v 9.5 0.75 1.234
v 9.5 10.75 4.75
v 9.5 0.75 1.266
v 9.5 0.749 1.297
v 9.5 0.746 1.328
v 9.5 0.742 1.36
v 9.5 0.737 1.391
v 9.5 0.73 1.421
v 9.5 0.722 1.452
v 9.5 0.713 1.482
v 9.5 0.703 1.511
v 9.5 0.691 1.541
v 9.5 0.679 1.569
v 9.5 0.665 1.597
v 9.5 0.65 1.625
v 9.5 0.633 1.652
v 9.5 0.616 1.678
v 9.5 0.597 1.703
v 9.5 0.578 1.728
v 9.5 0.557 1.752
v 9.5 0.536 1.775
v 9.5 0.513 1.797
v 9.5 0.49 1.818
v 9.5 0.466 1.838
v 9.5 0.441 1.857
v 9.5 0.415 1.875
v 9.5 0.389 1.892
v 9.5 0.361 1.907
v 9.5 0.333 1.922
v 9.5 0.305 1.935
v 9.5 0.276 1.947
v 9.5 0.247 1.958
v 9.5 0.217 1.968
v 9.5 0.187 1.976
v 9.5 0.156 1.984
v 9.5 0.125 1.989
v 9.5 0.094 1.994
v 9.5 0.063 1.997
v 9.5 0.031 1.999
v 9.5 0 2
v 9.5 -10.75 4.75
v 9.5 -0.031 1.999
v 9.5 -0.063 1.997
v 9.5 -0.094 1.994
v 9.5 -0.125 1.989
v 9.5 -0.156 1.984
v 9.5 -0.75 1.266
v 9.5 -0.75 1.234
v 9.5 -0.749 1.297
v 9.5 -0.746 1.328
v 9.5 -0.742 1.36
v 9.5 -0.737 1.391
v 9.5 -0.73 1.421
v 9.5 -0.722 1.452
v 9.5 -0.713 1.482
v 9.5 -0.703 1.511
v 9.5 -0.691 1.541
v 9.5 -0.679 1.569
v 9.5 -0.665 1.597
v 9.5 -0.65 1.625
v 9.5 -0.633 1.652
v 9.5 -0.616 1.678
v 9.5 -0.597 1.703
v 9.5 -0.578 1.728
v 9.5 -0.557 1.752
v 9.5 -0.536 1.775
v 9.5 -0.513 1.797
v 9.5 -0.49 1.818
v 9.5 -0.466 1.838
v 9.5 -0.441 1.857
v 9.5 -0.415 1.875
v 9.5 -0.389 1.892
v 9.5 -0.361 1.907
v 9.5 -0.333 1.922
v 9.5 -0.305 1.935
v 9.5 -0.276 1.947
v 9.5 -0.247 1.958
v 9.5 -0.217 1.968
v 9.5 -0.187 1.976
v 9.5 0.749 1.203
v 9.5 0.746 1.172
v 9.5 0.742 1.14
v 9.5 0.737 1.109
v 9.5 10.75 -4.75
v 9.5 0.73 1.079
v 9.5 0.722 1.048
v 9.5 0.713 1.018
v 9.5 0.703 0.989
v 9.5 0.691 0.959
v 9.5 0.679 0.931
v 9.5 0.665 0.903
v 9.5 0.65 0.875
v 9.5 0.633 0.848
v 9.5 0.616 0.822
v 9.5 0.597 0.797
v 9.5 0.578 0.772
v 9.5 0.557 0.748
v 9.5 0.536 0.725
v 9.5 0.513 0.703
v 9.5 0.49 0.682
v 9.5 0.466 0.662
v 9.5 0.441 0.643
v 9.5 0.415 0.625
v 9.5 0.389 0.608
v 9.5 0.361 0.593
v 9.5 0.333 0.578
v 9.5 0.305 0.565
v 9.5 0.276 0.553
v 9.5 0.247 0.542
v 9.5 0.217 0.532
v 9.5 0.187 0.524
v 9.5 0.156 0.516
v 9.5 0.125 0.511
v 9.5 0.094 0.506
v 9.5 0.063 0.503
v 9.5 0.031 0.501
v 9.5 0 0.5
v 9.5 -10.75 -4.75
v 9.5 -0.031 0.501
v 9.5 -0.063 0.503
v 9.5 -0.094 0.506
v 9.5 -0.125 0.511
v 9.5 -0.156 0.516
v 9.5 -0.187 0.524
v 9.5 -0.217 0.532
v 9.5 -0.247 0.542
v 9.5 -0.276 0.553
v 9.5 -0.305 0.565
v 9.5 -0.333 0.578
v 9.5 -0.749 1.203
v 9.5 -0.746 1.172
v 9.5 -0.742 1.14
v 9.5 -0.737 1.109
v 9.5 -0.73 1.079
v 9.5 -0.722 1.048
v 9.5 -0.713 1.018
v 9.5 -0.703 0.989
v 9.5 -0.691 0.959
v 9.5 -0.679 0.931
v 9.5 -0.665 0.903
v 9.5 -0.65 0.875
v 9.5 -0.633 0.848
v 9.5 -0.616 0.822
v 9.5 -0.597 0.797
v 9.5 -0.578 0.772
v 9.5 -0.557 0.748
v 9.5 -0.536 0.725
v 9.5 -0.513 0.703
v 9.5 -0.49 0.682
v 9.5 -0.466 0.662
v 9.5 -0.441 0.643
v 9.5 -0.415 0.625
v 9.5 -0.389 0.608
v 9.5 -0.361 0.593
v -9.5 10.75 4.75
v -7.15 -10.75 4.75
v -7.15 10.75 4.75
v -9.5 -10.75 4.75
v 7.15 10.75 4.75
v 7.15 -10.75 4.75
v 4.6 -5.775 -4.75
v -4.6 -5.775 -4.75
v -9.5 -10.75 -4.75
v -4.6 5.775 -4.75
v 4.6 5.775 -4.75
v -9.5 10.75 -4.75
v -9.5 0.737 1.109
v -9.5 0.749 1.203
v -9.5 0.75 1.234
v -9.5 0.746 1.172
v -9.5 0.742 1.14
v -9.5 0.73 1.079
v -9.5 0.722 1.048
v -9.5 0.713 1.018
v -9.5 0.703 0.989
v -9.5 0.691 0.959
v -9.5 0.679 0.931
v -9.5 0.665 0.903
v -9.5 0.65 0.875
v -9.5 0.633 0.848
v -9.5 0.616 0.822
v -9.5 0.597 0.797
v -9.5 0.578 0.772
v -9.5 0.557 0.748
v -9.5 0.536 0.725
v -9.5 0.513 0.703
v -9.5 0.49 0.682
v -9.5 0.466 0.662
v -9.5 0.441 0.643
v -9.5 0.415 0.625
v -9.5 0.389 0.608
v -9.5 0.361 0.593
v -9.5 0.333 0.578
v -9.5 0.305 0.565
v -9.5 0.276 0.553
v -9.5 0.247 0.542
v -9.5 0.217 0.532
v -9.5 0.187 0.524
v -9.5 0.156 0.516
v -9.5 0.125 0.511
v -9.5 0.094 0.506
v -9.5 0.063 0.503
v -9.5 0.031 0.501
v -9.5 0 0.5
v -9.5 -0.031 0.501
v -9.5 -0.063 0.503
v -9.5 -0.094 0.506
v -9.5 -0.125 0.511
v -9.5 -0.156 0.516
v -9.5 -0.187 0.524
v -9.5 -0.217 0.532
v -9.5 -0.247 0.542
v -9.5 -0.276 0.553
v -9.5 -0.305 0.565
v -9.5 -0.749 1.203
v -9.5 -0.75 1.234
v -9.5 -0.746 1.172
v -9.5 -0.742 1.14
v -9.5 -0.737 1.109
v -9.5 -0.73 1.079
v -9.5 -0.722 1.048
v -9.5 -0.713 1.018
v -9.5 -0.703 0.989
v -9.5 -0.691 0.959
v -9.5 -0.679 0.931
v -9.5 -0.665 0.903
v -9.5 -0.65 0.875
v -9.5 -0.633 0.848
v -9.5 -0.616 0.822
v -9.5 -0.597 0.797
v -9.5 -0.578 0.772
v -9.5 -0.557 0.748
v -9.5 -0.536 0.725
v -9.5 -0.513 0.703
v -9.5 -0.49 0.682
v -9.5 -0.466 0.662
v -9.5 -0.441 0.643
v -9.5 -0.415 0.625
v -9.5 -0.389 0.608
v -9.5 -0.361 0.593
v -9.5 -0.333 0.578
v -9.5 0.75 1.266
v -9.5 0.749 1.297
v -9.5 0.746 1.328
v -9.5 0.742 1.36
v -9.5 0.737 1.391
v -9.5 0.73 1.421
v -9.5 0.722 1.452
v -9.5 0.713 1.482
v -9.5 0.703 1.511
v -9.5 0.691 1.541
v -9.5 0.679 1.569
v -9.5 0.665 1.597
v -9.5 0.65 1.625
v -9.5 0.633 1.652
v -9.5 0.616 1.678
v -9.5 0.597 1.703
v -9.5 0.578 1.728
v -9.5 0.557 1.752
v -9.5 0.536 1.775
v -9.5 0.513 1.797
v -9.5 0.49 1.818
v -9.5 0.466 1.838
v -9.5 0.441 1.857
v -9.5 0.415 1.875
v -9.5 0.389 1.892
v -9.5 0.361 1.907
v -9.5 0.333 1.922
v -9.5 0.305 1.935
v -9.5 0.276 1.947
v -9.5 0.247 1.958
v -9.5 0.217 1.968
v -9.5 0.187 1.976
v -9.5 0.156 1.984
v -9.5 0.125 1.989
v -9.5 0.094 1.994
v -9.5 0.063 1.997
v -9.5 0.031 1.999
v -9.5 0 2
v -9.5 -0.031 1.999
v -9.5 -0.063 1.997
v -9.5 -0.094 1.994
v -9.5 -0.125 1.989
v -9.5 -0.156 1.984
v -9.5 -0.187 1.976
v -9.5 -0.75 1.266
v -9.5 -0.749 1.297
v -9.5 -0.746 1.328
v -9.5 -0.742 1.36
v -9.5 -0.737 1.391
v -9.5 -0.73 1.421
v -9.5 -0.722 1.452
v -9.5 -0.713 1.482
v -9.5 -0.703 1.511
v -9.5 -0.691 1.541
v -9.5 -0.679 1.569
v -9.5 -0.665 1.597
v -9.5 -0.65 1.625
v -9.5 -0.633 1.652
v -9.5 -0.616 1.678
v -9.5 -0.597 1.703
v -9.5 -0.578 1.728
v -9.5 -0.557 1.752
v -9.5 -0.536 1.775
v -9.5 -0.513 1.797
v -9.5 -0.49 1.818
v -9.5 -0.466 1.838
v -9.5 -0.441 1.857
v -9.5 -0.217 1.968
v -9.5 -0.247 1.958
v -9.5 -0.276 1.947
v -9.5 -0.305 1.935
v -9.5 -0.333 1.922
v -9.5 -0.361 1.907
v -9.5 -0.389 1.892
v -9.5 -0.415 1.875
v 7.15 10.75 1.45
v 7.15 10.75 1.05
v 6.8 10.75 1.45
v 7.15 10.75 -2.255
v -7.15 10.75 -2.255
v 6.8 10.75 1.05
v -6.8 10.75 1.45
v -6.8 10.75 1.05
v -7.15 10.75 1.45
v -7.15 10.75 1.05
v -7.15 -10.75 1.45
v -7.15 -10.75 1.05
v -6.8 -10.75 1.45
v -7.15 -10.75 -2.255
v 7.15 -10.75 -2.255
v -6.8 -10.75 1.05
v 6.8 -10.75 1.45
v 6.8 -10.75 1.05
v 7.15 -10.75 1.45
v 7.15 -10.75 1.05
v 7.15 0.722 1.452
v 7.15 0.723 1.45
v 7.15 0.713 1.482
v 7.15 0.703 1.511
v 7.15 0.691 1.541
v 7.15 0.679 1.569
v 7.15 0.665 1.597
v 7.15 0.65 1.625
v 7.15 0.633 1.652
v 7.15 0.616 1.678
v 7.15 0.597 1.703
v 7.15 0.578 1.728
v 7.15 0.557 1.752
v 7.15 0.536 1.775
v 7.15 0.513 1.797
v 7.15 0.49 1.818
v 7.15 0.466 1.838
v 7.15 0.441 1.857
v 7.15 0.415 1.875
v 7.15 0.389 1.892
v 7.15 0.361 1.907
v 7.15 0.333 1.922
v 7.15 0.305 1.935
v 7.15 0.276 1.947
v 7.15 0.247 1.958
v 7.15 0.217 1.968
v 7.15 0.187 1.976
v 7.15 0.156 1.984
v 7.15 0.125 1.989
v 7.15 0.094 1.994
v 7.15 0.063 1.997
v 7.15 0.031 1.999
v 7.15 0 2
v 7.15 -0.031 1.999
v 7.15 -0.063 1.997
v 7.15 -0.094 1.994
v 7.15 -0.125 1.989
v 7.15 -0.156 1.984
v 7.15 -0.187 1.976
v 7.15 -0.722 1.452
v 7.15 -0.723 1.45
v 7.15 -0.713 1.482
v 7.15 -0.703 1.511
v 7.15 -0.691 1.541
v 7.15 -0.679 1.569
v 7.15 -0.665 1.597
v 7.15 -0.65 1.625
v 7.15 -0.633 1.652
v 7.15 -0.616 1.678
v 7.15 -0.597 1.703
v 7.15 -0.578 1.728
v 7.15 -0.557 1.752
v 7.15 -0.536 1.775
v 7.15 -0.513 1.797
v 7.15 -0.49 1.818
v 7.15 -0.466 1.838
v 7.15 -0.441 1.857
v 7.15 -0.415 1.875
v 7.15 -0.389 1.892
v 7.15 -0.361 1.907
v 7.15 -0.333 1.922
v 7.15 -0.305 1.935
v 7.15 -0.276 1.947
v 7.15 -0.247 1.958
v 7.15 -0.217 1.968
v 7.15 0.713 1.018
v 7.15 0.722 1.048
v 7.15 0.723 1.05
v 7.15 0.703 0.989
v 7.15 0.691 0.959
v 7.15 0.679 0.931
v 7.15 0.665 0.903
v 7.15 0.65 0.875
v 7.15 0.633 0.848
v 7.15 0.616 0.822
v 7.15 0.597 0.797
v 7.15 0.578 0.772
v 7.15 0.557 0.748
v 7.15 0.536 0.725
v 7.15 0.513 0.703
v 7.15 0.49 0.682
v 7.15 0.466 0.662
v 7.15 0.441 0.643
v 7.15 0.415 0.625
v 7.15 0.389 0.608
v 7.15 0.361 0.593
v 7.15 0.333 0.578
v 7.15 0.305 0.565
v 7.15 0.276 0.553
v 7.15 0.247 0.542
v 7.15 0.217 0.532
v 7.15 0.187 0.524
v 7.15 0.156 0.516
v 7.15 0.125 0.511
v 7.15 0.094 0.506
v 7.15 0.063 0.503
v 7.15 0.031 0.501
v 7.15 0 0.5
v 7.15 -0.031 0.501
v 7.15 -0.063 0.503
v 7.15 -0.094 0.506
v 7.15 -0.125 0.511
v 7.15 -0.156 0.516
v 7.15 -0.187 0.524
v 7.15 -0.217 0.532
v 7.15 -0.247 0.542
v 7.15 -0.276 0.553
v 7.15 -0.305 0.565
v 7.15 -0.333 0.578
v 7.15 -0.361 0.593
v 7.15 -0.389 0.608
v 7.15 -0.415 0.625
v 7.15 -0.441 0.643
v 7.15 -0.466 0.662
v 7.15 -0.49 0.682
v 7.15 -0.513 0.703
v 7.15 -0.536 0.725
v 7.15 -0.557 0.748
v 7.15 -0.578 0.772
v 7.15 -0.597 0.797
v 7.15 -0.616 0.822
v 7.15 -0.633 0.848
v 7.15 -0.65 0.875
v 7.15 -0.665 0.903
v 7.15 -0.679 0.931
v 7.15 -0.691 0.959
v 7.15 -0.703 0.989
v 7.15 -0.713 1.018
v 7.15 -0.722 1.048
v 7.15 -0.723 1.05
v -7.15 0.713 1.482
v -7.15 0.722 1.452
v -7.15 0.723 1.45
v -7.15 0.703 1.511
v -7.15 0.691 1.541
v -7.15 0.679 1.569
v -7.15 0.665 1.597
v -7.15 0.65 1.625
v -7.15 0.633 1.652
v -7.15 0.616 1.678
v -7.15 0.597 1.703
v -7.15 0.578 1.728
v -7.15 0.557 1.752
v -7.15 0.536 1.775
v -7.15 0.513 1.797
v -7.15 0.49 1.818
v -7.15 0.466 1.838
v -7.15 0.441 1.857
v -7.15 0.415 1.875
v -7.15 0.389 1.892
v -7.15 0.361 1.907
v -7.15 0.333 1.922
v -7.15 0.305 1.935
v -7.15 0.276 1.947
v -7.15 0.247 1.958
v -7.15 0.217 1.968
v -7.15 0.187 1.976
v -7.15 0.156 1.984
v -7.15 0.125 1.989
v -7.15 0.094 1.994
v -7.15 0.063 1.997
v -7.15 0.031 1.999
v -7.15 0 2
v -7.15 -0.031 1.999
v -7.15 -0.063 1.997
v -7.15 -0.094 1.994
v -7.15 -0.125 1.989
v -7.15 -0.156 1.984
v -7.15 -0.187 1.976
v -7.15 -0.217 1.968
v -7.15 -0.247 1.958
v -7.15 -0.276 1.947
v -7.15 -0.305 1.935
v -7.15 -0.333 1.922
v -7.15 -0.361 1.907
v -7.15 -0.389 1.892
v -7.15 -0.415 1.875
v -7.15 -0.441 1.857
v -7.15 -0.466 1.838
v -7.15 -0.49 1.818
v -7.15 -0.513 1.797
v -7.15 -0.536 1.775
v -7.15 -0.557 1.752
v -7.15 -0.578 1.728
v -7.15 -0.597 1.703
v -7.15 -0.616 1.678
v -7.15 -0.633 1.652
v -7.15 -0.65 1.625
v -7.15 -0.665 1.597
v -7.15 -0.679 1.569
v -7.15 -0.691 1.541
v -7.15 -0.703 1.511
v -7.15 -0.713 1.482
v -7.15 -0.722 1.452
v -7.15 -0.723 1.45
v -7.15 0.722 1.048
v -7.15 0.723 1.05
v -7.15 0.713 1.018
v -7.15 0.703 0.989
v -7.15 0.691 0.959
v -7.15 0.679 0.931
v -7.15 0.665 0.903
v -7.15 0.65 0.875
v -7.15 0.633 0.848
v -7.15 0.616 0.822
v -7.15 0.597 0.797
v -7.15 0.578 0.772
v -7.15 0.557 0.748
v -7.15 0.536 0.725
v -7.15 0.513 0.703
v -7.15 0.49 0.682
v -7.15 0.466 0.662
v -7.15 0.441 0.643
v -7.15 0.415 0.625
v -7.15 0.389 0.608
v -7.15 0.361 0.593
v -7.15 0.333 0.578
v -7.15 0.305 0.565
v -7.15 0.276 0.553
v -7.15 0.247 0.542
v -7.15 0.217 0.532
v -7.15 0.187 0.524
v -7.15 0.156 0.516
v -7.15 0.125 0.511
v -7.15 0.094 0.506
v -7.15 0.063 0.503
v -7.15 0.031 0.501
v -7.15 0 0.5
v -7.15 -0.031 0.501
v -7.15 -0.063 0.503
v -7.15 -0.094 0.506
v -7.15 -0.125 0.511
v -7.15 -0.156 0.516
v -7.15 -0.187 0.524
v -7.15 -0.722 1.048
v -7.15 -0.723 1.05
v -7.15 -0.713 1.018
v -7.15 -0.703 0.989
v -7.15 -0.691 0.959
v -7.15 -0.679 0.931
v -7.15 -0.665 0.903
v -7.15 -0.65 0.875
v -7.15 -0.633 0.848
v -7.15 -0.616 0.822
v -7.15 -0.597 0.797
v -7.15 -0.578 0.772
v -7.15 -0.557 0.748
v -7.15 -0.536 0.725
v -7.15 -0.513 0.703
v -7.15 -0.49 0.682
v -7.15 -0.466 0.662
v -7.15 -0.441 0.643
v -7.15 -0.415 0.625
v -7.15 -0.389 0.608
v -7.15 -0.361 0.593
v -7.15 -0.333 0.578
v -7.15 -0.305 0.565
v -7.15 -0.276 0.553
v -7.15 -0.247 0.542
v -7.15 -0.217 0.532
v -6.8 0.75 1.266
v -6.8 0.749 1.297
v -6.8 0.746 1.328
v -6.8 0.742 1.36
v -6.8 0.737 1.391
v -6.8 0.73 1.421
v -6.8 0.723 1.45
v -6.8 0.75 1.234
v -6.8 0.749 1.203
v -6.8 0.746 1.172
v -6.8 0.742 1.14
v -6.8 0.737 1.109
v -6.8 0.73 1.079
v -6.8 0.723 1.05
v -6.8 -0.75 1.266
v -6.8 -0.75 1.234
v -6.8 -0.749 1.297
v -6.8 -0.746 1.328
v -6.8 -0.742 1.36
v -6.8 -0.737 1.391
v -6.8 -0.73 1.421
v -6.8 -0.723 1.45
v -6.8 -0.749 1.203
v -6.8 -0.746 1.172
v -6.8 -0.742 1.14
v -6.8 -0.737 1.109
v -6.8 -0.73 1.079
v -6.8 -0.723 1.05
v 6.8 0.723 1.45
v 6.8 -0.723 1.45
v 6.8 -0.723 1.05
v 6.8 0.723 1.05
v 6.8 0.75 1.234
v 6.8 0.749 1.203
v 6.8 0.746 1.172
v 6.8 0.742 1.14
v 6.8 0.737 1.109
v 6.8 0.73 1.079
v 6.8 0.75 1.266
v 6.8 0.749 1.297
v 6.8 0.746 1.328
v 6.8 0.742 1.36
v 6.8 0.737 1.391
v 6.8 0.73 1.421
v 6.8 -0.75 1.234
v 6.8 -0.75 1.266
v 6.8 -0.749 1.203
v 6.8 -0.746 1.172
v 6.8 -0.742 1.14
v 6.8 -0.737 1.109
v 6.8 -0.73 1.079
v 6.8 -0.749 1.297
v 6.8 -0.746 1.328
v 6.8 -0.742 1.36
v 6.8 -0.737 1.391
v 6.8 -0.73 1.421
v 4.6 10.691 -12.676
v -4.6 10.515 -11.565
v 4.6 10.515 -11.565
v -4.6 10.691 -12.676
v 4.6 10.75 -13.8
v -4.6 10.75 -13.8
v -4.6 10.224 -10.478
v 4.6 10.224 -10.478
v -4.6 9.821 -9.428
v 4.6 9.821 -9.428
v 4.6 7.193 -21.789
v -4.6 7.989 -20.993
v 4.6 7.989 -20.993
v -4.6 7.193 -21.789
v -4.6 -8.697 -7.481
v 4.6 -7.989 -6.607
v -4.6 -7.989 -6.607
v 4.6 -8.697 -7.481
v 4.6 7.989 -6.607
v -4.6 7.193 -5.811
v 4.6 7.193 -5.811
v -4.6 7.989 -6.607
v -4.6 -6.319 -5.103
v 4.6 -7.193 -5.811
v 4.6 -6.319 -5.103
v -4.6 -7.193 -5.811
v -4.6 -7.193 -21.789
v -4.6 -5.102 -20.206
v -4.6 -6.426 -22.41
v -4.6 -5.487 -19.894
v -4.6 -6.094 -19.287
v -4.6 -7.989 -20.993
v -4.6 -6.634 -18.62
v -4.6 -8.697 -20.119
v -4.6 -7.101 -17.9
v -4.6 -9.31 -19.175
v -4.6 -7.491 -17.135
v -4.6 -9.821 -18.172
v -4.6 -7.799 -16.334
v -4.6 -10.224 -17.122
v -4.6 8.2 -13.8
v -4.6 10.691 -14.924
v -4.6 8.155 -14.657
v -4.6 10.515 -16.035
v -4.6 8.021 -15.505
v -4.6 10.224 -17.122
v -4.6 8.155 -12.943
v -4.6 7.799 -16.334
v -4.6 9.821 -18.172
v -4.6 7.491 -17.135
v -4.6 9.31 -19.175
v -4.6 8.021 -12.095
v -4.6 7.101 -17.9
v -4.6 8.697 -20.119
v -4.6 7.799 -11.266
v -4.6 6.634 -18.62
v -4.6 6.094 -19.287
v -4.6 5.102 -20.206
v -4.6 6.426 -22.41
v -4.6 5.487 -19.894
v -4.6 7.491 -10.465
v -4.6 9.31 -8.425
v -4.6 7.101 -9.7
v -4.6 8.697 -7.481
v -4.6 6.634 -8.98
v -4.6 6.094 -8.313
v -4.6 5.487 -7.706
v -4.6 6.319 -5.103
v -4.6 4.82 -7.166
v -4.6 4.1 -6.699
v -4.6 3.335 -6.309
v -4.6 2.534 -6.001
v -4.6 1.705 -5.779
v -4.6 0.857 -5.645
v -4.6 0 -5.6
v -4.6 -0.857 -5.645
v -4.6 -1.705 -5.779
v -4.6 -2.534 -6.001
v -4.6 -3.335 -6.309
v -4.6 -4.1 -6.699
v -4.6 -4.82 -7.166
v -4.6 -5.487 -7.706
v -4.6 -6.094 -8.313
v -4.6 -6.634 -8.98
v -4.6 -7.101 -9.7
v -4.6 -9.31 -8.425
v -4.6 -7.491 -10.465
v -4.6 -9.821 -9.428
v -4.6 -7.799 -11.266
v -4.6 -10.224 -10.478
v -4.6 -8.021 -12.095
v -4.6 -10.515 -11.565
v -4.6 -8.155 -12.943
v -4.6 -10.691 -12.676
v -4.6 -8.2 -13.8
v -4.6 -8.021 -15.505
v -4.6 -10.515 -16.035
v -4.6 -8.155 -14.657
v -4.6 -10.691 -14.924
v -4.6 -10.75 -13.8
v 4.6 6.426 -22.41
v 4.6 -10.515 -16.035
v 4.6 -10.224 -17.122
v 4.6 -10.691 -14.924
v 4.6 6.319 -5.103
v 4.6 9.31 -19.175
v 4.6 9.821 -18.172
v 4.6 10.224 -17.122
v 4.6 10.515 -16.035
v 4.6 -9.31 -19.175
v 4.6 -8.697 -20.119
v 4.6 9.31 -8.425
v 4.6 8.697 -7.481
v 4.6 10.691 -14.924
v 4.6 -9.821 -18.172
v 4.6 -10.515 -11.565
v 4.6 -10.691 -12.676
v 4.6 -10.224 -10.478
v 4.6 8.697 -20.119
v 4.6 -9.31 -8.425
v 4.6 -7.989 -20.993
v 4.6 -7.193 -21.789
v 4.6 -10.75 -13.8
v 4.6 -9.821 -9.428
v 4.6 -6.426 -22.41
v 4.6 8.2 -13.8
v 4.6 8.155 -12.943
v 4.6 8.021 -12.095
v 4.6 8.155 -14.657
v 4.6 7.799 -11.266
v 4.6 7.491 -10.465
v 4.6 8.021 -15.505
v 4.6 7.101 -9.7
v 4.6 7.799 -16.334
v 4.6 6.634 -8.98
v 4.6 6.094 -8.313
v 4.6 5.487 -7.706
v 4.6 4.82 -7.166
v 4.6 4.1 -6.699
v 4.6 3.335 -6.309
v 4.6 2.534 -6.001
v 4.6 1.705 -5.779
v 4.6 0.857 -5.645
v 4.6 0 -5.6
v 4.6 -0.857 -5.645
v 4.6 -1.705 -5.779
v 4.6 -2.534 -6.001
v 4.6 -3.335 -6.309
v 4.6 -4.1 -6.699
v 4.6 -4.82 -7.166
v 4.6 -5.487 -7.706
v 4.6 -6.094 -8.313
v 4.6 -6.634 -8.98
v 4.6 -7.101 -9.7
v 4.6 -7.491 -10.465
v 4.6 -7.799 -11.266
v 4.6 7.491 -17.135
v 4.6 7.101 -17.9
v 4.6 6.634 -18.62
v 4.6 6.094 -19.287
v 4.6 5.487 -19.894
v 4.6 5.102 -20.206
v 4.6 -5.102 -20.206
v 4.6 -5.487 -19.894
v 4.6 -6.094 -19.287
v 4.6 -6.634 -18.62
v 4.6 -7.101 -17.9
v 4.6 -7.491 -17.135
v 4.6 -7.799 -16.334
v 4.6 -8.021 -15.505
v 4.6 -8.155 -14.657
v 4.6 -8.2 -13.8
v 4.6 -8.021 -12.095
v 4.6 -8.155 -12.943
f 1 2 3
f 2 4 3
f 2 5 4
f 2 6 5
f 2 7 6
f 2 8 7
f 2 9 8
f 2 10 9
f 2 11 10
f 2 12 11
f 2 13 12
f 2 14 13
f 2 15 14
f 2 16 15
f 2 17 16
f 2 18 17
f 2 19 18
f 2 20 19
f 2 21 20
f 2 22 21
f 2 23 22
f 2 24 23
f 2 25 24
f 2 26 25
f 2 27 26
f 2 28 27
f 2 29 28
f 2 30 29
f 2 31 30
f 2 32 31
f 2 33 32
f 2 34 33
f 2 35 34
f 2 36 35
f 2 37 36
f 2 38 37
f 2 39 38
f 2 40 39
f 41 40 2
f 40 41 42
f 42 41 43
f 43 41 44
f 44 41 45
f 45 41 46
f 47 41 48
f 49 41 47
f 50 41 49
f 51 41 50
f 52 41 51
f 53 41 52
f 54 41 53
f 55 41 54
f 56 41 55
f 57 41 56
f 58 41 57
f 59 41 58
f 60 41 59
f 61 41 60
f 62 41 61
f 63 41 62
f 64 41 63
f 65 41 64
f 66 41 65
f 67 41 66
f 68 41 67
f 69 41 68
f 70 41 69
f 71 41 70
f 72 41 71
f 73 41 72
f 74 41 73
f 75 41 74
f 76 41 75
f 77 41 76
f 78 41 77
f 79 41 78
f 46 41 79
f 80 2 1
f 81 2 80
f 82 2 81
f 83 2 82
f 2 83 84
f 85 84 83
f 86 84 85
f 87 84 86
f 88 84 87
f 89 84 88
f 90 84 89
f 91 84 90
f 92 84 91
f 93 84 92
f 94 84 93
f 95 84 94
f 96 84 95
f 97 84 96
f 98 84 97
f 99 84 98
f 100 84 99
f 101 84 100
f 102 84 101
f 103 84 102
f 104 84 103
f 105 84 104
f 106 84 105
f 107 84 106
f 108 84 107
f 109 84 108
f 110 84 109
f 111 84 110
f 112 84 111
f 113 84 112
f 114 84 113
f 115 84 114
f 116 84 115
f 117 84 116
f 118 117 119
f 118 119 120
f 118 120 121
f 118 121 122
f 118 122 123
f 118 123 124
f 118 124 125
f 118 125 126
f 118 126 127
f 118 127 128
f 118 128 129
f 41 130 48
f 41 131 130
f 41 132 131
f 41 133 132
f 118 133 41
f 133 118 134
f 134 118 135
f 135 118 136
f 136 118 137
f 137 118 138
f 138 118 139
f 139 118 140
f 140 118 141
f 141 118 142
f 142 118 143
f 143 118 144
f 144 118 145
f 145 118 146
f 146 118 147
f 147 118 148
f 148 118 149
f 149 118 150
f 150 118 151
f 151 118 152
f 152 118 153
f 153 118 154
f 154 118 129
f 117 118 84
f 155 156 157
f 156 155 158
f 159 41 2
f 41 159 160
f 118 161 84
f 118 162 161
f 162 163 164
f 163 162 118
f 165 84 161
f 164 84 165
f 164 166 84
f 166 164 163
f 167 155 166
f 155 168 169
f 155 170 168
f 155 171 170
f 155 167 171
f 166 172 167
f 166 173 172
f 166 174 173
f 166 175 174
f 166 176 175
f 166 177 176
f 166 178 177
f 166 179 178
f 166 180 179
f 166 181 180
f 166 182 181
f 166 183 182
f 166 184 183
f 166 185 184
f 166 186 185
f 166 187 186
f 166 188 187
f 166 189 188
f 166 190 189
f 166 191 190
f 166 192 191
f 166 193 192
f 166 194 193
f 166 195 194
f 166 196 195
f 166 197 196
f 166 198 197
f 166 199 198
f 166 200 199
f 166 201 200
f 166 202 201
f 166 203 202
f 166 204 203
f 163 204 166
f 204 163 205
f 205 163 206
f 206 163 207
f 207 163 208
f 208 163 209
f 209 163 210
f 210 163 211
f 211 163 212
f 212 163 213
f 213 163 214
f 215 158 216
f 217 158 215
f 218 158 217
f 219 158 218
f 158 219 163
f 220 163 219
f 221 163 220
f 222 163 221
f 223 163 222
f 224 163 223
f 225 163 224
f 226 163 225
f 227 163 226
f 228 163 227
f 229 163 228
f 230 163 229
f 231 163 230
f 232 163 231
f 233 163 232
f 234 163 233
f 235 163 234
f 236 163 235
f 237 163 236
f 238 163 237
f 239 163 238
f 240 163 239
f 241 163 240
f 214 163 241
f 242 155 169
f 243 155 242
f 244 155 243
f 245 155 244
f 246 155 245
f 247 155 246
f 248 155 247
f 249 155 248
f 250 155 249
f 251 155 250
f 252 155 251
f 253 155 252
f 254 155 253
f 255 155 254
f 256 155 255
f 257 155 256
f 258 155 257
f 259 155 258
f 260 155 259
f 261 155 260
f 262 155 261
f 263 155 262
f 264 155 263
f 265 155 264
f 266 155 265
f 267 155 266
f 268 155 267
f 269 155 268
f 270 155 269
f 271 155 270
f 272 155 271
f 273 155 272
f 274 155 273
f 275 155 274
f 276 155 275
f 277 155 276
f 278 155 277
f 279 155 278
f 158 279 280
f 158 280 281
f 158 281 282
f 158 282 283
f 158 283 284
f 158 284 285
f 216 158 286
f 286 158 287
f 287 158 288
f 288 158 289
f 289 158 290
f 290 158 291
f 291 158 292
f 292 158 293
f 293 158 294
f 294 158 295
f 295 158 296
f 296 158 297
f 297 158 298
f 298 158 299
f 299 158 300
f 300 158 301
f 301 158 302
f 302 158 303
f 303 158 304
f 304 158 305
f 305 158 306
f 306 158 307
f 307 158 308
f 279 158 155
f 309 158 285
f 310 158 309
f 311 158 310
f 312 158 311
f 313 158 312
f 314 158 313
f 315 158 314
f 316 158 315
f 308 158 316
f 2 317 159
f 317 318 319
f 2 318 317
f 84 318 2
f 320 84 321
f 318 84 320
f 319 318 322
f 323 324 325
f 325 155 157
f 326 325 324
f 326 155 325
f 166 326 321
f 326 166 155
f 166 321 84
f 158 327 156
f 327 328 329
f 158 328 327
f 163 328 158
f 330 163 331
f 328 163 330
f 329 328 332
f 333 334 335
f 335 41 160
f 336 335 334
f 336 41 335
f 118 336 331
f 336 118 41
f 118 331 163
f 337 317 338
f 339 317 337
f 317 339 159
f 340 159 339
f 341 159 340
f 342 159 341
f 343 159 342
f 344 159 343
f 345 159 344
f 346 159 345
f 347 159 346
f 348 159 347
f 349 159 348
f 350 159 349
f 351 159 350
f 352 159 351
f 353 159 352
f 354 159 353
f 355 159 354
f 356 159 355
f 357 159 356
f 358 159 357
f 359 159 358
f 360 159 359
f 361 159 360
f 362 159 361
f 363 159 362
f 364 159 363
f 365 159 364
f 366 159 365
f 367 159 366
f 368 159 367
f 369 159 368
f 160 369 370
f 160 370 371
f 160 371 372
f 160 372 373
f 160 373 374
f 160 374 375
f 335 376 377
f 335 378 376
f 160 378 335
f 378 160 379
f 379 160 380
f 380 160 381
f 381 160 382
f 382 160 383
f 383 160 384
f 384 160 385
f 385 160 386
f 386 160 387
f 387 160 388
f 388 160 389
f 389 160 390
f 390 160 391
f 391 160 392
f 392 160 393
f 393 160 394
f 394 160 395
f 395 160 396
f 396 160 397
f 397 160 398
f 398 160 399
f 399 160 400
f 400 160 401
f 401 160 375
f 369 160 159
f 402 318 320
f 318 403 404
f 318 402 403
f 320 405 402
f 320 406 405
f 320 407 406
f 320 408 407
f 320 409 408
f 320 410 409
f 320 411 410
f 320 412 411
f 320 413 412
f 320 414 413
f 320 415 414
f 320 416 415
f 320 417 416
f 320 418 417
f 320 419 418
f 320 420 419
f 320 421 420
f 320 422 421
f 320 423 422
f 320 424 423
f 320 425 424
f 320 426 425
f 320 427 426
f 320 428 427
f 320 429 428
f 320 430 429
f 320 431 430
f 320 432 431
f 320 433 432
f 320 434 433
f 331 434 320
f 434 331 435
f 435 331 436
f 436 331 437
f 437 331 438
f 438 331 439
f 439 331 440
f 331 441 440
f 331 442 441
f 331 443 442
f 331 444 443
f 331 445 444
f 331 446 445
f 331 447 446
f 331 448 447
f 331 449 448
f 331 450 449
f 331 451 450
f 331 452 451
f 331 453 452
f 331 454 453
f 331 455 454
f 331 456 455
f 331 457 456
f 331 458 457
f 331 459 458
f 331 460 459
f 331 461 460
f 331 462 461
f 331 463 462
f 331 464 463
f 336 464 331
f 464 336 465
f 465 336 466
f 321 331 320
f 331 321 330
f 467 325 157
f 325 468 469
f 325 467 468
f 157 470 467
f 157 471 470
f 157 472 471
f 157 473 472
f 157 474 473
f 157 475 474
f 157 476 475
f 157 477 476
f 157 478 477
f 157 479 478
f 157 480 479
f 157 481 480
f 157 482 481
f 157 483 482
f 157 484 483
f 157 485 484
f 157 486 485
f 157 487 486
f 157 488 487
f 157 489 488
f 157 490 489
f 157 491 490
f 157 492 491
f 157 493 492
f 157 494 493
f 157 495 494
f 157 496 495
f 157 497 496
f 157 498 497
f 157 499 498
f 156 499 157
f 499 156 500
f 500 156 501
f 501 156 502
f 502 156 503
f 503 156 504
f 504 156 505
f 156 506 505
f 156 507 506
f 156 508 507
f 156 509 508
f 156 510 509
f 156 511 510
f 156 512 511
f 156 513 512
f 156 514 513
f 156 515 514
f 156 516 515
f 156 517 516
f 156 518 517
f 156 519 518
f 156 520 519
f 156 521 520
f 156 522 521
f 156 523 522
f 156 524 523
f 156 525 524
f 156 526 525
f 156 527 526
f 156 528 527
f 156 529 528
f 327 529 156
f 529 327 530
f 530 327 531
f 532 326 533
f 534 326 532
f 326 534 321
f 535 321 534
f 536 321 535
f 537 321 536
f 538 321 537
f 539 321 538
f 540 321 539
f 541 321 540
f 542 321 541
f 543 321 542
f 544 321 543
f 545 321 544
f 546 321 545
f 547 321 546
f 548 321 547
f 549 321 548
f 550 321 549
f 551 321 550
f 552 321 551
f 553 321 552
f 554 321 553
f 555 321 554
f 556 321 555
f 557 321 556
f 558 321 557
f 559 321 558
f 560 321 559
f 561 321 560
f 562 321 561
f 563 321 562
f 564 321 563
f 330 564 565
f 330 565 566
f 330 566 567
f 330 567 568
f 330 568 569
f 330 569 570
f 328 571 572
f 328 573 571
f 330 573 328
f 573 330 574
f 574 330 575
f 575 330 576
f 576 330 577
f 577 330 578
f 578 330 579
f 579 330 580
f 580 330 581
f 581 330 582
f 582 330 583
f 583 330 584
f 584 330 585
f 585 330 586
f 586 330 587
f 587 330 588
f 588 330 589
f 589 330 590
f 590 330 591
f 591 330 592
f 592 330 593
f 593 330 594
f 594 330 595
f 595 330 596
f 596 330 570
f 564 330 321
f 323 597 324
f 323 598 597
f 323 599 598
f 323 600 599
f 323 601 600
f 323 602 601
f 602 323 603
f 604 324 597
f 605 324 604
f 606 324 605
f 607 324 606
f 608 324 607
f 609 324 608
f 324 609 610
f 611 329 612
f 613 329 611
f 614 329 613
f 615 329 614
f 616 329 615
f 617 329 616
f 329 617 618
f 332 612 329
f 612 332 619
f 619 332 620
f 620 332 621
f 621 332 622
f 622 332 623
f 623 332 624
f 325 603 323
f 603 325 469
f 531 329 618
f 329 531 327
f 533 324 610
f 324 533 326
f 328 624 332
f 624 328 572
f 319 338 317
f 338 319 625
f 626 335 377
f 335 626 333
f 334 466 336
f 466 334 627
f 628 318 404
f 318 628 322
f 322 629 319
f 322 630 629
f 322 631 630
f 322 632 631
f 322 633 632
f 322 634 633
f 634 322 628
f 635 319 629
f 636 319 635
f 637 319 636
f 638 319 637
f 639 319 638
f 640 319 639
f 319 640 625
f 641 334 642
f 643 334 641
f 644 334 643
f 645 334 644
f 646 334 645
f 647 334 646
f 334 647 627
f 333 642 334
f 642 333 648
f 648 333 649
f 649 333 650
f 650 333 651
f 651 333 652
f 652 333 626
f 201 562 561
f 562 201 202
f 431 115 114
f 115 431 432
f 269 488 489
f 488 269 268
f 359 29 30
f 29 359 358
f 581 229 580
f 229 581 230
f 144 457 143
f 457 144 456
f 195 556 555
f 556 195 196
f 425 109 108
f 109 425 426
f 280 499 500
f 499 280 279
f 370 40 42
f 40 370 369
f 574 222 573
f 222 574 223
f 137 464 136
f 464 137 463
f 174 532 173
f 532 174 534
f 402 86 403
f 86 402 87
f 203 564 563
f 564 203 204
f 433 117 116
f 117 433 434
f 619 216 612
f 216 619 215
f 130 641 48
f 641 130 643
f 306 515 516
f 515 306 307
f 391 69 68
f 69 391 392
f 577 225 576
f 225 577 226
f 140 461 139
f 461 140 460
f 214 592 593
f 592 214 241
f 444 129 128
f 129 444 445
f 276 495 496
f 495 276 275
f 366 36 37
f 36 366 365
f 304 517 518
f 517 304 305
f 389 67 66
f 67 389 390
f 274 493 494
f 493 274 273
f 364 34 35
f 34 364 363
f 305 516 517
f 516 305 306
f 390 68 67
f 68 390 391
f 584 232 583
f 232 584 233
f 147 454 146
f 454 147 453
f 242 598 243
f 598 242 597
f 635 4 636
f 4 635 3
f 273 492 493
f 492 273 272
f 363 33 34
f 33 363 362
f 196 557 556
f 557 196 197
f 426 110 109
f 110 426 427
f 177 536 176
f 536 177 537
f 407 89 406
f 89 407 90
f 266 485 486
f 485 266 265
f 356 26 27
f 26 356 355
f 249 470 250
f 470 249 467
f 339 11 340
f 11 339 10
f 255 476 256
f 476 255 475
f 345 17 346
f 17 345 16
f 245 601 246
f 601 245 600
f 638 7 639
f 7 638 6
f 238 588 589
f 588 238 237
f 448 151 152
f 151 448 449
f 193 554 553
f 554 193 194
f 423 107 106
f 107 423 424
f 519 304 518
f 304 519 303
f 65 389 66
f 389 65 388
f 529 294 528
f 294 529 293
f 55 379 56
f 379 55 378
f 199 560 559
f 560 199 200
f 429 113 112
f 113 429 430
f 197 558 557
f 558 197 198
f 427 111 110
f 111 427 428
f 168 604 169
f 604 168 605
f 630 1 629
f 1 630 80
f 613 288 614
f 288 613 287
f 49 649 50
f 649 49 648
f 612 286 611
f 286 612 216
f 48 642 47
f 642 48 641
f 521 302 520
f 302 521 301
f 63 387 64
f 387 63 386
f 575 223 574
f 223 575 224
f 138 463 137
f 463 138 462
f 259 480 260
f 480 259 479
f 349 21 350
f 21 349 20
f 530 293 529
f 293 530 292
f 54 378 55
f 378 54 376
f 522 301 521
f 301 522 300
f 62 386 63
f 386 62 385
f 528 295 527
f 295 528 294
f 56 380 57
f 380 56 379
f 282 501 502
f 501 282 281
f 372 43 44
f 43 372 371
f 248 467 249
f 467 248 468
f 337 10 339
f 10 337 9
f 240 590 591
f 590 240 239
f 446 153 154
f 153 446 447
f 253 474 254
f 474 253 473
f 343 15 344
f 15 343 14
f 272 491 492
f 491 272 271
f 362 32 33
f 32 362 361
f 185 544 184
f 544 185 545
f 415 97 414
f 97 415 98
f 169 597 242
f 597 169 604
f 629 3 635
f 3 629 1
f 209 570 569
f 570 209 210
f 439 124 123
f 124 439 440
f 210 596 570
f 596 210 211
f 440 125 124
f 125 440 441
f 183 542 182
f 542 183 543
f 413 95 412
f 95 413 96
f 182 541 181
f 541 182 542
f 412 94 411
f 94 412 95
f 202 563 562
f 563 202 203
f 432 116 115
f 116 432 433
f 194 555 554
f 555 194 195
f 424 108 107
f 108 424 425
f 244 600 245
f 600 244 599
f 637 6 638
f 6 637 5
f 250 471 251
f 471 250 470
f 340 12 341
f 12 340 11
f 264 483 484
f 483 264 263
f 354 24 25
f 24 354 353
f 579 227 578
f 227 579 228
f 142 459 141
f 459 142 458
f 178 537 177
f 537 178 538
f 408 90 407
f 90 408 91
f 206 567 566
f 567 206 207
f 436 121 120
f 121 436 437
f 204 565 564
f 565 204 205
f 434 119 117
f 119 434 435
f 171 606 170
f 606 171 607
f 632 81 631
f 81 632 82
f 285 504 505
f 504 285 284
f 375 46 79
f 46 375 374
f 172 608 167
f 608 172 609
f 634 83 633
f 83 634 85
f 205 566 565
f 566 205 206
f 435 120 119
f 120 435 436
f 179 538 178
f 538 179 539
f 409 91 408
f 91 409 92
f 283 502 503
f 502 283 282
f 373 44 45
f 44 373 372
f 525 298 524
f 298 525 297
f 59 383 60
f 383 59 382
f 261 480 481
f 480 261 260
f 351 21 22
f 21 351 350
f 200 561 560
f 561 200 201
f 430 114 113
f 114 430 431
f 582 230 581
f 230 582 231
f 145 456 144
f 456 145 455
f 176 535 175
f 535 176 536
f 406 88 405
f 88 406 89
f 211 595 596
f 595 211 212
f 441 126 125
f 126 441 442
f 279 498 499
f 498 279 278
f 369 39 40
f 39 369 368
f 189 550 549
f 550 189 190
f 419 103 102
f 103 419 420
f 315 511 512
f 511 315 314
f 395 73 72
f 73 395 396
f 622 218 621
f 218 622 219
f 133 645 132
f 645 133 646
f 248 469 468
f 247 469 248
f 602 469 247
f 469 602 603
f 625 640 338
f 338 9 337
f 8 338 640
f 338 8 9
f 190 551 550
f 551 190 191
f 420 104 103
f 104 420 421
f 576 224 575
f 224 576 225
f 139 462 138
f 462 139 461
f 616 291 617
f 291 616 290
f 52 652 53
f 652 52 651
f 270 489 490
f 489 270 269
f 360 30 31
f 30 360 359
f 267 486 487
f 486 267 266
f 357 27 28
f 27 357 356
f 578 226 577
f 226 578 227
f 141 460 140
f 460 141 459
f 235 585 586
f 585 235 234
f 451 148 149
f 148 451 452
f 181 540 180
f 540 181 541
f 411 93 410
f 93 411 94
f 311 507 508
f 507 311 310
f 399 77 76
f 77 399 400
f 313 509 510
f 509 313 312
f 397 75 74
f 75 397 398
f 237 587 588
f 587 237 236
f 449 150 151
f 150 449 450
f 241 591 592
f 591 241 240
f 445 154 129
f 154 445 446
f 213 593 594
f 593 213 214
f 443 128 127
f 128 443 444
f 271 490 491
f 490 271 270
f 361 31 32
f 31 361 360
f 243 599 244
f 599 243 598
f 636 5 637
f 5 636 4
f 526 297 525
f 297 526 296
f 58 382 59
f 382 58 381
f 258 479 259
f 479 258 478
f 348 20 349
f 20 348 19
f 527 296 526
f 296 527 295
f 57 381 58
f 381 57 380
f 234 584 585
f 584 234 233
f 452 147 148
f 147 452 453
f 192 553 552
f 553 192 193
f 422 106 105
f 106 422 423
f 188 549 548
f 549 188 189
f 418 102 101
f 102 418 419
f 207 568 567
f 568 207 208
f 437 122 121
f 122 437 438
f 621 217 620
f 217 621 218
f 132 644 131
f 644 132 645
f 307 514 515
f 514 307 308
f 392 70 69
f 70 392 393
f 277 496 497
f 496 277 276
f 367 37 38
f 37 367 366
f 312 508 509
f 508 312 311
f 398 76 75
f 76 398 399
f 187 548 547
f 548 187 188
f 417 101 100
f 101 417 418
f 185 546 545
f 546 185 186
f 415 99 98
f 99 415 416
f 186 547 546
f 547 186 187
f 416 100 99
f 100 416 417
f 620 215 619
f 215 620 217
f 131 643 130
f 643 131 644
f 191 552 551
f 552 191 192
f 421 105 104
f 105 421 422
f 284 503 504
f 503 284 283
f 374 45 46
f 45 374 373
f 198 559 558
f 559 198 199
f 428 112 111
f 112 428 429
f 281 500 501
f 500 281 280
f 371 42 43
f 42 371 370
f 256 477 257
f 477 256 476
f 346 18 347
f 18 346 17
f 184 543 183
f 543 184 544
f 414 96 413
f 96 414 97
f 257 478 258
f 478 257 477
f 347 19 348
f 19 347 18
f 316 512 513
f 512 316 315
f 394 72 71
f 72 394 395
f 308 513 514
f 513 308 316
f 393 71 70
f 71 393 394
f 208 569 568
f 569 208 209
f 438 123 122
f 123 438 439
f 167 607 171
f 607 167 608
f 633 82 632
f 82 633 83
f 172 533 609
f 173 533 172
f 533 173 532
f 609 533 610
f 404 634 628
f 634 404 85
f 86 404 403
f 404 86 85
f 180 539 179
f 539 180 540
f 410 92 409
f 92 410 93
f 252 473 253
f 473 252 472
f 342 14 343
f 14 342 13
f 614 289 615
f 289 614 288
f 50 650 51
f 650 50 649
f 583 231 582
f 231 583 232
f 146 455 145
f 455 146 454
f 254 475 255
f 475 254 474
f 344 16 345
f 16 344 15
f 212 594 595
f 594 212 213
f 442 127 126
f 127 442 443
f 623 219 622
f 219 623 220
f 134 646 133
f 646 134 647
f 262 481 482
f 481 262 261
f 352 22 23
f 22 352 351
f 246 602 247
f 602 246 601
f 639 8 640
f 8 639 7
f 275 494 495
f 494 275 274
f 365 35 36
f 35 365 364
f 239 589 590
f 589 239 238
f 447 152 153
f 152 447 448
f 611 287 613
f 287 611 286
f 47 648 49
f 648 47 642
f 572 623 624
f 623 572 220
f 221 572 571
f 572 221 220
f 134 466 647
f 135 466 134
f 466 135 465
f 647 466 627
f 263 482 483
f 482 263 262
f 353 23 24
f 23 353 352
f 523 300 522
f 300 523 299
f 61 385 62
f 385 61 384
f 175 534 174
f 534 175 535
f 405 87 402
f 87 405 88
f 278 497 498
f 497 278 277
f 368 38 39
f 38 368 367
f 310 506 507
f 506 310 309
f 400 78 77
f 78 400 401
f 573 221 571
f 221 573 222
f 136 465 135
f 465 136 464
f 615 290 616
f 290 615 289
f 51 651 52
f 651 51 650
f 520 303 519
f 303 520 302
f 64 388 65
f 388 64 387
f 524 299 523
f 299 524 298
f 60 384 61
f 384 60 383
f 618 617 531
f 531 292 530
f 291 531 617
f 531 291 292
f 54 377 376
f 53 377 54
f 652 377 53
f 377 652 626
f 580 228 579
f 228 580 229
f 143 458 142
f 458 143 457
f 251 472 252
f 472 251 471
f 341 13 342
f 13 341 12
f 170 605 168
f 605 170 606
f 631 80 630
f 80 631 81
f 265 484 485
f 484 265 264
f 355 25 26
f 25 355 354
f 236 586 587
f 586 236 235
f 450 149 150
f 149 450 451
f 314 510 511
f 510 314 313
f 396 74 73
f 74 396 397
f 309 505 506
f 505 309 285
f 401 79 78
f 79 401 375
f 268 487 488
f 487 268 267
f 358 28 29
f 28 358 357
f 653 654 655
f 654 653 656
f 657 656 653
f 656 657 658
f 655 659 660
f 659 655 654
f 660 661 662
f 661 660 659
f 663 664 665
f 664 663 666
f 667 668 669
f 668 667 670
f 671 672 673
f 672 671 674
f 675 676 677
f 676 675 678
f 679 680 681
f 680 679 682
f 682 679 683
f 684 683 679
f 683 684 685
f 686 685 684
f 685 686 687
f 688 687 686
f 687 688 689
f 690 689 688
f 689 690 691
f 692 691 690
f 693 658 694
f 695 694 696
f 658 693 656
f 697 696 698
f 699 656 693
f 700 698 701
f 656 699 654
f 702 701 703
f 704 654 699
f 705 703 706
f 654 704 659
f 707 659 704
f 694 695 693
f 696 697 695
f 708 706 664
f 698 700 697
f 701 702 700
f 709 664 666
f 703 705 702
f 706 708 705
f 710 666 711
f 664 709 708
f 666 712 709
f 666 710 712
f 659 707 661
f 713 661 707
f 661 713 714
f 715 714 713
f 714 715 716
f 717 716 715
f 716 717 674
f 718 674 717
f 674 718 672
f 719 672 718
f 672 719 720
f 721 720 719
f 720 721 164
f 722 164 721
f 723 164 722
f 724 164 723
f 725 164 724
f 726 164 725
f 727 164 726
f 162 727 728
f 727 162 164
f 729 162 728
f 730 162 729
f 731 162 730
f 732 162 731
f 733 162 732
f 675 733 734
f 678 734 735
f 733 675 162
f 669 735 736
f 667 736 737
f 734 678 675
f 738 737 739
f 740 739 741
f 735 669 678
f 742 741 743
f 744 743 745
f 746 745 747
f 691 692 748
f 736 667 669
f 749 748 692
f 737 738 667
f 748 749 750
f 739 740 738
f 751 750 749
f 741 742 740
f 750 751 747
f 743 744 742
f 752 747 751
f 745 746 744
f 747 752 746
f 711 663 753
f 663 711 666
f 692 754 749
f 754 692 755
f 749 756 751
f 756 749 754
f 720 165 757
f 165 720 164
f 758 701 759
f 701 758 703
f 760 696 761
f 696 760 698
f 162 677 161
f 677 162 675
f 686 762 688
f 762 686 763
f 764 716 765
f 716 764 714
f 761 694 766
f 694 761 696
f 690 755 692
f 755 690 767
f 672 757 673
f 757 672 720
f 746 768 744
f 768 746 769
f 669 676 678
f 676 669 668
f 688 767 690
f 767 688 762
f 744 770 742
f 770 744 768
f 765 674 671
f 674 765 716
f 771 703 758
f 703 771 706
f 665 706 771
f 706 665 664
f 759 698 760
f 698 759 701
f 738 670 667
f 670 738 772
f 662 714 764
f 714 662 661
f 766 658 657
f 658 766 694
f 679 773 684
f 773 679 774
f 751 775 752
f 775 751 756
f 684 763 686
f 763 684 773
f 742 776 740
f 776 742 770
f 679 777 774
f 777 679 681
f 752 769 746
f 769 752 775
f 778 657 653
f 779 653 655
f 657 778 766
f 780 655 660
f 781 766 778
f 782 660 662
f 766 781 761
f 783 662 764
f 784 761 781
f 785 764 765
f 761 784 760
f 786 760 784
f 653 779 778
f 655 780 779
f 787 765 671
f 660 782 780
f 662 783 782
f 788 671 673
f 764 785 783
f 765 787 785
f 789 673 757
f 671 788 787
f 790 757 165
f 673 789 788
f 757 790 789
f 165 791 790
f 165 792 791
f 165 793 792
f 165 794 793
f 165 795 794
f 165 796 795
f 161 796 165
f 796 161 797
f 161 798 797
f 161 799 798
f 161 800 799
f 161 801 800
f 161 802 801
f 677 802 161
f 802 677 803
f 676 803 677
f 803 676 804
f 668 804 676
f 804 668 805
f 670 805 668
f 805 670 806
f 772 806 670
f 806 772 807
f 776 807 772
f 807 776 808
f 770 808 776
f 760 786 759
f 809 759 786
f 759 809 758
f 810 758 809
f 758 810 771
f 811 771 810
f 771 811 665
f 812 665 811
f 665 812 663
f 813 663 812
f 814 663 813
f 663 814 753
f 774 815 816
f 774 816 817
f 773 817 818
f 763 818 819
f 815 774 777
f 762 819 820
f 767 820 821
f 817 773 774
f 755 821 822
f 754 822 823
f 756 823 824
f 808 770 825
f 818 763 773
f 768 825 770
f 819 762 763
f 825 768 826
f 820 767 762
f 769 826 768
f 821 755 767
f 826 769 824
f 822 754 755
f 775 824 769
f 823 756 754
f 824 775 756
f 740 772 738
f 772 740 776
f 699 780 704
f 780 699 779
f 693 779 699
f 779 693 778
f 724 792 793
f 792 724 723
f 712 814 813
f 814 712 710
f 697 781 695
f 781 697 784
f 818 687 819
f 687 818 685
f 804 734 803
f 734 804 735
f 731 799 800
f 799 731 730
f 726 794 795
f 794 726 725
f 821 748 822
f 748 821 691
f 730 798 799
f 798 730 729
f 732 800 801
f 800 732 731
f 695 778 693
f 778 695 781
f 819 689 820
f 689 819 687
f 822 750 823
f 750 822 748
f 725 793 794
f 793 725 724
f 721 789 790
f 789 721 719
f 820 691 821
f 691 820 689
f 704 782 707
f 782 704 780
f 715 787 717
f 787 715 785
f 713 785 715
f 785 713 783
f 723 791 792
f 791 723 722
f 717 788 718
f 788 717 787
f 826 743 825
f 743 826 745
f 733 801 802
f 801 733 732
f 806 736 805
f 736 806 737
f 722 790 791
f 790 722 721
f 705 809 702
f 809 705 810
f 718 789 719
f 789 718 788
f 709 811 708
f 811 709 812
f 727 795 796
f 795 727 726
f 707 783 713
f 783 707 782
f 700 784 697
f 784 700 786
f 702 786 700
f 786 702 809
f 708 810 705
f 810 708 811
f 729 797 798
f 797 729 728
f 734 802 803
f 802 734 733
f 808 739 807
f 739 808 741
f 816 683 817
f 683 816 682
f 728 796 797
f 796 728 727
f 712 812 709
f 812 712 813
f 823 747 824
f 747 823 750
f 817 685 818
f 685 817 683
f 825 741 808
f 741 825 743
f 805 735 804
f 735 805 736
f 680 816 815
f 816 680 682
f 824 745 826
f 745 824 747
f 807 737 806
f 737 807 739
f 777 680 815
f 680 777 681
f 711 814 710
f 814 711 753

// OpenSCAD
$fn = $preview ? 25 : 150;
EPSILON = 0.01;
TOLERANCE = 0.3;

CHANNEL_WIDTH = 14;
CHANNEL_HEIGHT = 7;
BRACKET_LENGTH = 21.5;

THICKNESS = 2.5;

RING_OFFSET = 13.8;
RING_ANGLE = 0;

difference() {
  union() {
    difference() {
      cube(
          [
            CHANNEL_WIDTH + THICKNESS * 2, BRACKET_LENGTH, CHANNEL_HEIGHT +
            THICKNESS
          ],
          center = true);

      translate([ 0, 0, THICKNESS / 2 ]) cube(
          [
            CHANNEL_WIDTH + TOLERANCE, BRACKET_LENGTH + 10, CHANNEL_HEIGHT +
            EPSILON
          ],
          center = true);
    }
    for (a = [ -1, +1 ])
      translate([ CHANNEL_WIDTH / 2 * a, 0, THICKNESS / 2 ])
          cube([ 0.4, BRACKET_LENGTH, 0.4 ], center = true);
  }

  translate([ 0, 0, THICKNESS / 2 ]) rotate([ 0, 90, 0 ])
      cylinder(h = CHANNEL_WIDTH * 2, r = 1.5 / 2, center = true);

  rotate([ RING_ANGLE, 0, 90 ]) translate([ 0, 0, -RING_OFFSET ]) {
    ring_hollow();
  }
}

module ring_hollow() {
  rotate([ 90, 0, 0 ])
      cylinder(r = (16 + 0.4) / 2, h = 30, center = true, $fn = 60);
}

module ring() {
  rotate([ RING_ANGLE, 0, 90 ]) translate([ 0, 0, -RING_OFFSET ]) {
    difference() {
      rotate([ 90, 0, 0 ])
          cylinder(r = 21.5 / 2, h = 9.2, center = true, $fn = 60);
      ring_hollow();
      translate([ 0, 0, -RING_OFFSET ]) rotate(45)
          cylinder(h = 20, r1 = 22, r2 = 5, center = true, $fn = 4);
    }
  }
}

ring();
